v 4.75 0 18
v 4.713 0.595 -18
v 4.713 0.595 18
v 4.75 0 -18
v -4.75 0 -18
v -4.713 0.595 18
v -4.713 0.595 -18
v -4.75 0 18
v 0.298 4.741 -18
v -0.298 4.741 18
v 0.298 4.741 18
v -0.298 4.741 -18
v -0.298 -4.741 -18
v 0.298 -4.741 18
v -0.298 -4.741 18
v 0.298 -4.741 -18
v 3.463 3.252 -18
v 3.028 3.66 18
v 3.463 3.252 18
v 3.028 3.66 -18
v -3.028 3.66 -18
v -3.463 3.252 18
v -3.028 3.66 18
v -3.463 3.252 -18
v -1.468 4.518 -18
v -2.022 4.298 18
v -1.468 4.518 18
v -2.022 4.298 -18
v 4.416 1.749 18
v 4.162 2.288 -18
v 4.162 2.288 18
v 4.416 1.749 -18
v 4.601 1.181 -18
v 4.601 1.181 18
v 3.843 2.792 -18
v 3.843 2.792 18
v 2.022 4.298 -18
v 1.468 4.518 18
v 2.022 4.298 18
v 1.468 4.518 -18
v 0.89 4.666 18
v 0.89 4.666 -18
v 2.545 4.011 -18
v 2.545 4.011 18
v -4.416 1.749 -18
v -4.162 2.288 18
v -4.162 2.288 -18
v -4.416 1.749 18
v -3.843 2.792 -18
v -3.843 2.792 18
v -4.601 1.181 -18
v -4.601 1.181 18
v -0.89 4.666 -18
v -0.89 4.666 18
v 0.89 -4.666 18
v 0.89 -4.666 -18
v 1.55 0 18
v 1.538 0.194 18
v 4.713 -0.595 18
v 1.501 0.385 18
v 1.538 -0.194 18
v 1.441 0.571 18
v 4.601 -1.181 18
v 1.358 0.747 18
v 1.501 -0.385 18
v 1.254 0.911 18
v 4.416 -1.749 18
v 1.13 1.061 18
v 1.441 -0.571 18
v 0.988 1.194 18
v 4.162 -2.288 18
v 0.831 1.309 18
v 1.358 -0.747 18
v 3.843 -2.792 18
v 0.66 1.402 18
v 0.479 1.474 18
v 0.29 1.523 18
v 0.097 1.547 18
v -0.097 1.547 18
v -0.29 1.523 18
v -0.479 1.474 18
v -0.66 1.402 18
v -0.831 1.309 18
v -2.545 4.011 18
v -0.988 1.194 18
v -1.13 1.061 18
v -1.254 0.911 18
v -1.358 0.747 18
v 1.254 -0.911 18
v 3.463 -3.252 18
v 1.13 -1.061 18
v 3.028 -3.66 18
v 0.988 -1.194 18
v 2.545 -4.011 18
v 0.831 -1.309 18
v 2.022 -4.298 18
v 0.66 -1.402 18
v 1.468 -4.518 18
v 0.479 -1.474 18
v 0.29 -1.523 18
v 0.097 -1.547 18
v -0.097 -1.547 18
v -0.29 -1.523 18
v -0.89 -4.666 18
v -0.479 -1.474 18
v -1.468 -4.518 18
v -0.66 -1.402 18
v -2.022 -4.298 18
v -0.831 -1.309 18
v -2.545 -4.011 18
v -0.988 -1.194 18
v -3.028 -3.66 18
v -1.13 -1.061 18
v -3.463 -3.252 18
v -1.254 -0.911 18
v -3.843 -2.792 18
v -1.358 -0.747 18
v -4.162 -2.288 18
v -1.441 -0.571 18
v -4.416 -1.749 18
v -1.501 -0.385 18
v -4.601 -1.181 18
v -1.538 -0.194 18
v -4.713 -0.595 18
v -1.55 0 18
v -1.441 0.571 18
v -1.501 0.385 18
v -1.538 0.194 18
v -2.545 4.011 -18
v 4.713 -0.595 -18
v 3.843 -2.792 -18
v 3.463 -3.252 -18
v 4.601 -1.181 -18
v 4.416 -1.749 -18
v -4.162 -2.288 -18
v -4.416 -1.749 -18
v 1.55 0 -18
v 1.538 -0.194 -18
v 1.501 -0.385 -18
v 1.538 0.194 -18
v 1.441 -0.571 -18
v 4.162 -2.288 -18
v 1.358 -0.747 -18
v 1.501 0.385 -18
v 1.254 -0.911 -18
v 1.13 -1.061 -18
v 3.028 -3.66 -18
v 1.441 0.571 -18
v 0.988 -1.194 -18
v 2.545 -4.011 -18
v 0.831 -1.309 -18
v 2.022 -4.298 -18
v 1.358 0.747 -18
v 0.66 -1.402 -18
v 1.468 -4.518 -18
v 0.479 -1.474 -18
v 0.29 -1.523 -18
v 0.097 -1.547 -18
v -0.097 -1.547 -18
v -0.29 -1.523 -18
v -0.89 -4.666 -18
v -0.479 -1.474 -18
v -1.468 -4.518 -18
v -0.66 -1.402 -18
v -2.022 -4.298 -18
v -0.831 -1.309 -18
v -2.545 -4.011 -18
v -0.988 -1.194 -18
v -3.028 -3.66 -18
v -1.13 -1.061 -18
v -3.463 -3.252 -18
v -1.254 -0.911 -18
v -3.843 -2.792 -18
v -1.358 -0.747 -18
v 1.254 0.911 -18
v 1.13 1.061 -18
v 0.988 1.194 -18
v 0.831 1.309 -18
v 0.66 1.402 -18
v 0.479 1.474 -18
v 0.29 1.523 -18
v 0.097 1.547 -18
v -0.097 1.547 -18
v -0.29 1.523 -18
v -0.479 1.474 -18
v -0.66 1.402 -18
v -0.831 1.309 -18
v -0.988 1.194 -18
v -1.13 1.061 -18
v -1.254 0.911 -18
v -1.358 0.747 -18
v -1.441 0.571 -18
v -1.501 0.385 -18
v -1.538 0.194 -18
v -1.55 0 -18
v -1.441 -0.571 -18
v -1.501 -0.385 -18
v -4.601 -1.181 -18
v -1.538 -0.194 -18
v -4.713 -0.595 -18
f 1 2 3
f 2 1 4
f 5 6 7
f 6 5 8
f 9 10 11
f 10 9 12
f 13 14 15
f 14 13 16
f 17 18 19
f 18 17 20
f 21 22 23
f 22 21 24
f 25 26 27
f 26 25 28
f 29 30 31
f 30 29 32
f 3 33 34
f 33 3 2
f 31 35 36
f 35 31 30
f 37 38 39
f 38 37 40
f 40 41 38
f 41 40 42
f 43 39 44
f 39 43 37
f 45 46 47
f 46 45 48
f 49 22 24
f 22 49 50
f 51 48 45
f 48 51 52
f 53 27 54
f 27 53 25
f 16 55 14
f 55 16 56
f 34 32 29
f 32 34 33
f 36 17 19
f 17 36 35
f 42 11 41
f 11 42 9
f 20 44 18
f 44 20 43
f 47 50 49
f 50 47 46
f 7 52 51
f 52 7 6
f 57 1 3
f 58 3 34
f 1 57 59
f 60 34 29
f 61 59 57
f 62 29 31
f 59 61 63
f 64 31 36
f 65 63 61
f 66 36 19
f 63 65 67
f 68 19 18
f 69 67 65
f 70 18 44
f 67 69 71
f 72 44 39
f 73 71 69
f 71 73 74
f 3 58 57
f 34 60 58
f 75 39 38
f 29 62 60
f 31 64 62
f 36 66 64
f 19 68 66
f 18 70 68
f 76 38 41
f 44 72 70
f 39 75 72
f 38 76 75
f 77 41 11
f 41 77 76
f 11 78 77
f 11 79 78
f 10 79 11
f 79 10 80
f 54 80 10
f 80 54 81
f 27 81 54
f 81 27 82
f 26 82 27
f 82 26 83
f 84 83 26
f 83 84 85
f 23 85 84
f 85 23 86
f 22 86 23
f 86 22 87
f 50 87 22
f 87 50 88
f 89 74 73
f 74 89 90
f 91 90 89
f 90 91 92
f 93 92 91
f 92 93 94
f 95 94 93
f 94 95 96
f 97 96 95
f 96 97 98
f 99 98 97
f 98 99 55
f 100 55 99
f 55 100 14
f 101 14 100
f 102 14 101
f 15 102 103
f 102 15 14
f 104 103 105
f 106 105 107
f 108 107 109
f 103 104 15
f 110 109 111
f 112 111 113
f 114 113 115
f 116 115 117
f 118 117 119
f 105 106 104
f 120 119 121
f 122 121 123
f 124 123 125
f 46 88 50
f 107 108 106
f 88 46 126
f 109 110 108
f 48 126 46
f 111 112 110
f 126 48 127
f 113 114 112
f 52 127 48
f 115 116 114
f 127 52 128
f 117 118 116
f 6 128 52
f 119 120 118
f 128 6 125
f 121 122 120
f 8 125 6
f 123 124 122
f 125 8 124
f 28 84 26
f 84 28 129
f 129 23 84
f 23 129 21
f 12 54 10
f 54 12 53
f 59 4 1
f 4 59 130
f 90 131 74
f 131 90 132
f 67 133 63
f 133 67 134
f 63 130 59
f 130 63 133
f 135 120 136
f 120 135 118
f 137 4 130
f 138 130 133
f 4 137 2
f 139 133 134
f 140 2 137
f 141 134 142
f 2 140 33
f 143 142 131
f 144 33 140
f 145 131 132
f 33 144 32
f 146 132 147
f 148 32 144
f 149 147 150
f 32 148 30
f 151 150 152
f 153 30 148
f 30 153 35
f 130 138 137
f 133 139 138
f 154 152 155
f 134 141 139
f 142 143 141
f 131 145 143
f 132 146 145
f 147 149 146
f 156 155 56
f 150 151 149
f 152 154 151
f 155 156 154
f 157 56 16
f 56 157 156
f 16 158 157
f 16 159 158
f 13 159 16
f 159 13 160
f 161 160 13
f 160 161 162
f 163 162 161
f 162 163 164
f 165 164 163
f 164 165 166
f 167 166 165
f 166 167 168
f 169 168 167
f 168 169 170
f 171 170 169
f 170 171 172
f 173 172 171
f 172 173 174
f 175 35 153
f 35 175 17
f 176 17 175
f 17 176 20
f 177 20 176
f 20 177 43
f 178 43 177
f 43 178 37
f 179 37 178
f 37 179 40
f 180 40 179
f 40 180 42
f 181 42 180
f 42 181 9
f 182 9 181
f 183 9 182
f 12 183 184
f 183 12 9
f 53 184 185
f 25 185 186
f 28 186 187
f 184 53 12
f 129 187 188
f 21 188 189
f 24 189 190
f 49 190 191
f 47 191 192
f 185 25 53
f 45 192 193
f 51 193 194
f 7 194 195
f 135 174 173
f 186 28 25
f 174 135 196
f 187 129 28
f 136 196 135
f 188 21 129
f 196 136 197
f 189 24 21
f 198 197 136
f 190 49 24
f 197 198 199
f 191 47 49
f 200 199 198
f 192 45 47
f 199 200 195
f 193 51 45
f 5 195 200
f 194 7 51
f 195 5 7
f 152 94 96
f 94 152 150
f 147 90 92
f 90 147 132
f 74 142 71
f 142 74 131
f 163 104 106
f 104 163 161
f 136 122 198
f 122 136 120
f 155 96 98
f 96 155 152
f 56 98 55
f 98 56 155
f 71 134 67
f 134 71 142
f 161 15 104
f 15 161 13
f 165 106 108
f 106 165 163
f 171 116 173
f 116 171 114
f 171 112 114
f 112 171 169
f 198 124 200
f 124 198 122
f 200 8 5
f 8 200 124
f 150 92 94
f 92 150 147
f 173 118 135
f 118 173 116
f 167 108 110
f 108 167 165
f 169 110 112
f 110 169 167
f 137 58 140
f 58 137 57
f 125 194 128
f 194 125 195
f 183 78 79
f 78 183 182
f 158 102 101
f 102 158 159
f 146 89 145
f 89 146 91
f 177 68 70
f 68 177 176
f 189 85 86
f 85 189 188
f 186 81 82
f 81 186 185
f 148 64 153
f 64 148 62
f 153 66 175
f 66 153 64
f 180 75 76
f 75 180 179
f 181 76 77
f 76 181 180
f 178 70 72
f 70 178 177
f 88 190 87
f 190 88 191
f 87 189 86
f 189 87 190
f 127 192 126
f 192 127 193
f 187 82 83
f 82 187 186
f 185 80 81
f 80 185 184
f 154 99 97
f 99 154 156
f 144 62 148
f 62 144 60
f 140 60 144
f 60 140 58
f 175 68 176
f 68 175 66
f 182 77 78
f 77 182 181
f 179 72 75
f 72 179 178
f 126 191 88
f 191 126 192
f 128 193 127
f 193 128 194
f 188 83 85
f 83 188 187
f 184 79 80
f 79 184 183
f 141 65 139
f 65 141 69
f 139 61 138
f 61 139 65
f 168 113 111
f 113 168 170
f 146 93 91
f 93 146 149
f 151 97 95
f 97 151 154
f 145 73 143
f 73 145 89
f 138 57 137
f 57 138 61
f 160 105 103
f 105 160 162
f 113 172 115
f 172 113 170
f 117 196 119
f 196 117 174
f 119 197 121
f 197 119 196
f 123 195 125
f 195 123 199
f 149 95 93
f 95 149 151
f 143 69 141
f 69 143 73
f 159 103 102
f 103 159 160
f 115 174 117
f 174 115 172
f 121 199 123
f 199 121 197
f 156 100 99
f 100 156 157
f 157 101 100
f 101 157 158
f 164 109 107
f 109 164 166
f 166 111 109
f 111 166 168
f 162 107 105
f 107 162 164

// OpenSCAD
$fn = 50;


difference() {
	union() {
		translate(v = [0, 0, -18.0000000000]) {
			cylinder(h = 36, r = 4.7500000000);
		}
	}
	union() {
		translate(v = [0, 0, -100.0000000000]) {
			cylinder(h = 200, r = 1.5500000000);
		}
	}
}
